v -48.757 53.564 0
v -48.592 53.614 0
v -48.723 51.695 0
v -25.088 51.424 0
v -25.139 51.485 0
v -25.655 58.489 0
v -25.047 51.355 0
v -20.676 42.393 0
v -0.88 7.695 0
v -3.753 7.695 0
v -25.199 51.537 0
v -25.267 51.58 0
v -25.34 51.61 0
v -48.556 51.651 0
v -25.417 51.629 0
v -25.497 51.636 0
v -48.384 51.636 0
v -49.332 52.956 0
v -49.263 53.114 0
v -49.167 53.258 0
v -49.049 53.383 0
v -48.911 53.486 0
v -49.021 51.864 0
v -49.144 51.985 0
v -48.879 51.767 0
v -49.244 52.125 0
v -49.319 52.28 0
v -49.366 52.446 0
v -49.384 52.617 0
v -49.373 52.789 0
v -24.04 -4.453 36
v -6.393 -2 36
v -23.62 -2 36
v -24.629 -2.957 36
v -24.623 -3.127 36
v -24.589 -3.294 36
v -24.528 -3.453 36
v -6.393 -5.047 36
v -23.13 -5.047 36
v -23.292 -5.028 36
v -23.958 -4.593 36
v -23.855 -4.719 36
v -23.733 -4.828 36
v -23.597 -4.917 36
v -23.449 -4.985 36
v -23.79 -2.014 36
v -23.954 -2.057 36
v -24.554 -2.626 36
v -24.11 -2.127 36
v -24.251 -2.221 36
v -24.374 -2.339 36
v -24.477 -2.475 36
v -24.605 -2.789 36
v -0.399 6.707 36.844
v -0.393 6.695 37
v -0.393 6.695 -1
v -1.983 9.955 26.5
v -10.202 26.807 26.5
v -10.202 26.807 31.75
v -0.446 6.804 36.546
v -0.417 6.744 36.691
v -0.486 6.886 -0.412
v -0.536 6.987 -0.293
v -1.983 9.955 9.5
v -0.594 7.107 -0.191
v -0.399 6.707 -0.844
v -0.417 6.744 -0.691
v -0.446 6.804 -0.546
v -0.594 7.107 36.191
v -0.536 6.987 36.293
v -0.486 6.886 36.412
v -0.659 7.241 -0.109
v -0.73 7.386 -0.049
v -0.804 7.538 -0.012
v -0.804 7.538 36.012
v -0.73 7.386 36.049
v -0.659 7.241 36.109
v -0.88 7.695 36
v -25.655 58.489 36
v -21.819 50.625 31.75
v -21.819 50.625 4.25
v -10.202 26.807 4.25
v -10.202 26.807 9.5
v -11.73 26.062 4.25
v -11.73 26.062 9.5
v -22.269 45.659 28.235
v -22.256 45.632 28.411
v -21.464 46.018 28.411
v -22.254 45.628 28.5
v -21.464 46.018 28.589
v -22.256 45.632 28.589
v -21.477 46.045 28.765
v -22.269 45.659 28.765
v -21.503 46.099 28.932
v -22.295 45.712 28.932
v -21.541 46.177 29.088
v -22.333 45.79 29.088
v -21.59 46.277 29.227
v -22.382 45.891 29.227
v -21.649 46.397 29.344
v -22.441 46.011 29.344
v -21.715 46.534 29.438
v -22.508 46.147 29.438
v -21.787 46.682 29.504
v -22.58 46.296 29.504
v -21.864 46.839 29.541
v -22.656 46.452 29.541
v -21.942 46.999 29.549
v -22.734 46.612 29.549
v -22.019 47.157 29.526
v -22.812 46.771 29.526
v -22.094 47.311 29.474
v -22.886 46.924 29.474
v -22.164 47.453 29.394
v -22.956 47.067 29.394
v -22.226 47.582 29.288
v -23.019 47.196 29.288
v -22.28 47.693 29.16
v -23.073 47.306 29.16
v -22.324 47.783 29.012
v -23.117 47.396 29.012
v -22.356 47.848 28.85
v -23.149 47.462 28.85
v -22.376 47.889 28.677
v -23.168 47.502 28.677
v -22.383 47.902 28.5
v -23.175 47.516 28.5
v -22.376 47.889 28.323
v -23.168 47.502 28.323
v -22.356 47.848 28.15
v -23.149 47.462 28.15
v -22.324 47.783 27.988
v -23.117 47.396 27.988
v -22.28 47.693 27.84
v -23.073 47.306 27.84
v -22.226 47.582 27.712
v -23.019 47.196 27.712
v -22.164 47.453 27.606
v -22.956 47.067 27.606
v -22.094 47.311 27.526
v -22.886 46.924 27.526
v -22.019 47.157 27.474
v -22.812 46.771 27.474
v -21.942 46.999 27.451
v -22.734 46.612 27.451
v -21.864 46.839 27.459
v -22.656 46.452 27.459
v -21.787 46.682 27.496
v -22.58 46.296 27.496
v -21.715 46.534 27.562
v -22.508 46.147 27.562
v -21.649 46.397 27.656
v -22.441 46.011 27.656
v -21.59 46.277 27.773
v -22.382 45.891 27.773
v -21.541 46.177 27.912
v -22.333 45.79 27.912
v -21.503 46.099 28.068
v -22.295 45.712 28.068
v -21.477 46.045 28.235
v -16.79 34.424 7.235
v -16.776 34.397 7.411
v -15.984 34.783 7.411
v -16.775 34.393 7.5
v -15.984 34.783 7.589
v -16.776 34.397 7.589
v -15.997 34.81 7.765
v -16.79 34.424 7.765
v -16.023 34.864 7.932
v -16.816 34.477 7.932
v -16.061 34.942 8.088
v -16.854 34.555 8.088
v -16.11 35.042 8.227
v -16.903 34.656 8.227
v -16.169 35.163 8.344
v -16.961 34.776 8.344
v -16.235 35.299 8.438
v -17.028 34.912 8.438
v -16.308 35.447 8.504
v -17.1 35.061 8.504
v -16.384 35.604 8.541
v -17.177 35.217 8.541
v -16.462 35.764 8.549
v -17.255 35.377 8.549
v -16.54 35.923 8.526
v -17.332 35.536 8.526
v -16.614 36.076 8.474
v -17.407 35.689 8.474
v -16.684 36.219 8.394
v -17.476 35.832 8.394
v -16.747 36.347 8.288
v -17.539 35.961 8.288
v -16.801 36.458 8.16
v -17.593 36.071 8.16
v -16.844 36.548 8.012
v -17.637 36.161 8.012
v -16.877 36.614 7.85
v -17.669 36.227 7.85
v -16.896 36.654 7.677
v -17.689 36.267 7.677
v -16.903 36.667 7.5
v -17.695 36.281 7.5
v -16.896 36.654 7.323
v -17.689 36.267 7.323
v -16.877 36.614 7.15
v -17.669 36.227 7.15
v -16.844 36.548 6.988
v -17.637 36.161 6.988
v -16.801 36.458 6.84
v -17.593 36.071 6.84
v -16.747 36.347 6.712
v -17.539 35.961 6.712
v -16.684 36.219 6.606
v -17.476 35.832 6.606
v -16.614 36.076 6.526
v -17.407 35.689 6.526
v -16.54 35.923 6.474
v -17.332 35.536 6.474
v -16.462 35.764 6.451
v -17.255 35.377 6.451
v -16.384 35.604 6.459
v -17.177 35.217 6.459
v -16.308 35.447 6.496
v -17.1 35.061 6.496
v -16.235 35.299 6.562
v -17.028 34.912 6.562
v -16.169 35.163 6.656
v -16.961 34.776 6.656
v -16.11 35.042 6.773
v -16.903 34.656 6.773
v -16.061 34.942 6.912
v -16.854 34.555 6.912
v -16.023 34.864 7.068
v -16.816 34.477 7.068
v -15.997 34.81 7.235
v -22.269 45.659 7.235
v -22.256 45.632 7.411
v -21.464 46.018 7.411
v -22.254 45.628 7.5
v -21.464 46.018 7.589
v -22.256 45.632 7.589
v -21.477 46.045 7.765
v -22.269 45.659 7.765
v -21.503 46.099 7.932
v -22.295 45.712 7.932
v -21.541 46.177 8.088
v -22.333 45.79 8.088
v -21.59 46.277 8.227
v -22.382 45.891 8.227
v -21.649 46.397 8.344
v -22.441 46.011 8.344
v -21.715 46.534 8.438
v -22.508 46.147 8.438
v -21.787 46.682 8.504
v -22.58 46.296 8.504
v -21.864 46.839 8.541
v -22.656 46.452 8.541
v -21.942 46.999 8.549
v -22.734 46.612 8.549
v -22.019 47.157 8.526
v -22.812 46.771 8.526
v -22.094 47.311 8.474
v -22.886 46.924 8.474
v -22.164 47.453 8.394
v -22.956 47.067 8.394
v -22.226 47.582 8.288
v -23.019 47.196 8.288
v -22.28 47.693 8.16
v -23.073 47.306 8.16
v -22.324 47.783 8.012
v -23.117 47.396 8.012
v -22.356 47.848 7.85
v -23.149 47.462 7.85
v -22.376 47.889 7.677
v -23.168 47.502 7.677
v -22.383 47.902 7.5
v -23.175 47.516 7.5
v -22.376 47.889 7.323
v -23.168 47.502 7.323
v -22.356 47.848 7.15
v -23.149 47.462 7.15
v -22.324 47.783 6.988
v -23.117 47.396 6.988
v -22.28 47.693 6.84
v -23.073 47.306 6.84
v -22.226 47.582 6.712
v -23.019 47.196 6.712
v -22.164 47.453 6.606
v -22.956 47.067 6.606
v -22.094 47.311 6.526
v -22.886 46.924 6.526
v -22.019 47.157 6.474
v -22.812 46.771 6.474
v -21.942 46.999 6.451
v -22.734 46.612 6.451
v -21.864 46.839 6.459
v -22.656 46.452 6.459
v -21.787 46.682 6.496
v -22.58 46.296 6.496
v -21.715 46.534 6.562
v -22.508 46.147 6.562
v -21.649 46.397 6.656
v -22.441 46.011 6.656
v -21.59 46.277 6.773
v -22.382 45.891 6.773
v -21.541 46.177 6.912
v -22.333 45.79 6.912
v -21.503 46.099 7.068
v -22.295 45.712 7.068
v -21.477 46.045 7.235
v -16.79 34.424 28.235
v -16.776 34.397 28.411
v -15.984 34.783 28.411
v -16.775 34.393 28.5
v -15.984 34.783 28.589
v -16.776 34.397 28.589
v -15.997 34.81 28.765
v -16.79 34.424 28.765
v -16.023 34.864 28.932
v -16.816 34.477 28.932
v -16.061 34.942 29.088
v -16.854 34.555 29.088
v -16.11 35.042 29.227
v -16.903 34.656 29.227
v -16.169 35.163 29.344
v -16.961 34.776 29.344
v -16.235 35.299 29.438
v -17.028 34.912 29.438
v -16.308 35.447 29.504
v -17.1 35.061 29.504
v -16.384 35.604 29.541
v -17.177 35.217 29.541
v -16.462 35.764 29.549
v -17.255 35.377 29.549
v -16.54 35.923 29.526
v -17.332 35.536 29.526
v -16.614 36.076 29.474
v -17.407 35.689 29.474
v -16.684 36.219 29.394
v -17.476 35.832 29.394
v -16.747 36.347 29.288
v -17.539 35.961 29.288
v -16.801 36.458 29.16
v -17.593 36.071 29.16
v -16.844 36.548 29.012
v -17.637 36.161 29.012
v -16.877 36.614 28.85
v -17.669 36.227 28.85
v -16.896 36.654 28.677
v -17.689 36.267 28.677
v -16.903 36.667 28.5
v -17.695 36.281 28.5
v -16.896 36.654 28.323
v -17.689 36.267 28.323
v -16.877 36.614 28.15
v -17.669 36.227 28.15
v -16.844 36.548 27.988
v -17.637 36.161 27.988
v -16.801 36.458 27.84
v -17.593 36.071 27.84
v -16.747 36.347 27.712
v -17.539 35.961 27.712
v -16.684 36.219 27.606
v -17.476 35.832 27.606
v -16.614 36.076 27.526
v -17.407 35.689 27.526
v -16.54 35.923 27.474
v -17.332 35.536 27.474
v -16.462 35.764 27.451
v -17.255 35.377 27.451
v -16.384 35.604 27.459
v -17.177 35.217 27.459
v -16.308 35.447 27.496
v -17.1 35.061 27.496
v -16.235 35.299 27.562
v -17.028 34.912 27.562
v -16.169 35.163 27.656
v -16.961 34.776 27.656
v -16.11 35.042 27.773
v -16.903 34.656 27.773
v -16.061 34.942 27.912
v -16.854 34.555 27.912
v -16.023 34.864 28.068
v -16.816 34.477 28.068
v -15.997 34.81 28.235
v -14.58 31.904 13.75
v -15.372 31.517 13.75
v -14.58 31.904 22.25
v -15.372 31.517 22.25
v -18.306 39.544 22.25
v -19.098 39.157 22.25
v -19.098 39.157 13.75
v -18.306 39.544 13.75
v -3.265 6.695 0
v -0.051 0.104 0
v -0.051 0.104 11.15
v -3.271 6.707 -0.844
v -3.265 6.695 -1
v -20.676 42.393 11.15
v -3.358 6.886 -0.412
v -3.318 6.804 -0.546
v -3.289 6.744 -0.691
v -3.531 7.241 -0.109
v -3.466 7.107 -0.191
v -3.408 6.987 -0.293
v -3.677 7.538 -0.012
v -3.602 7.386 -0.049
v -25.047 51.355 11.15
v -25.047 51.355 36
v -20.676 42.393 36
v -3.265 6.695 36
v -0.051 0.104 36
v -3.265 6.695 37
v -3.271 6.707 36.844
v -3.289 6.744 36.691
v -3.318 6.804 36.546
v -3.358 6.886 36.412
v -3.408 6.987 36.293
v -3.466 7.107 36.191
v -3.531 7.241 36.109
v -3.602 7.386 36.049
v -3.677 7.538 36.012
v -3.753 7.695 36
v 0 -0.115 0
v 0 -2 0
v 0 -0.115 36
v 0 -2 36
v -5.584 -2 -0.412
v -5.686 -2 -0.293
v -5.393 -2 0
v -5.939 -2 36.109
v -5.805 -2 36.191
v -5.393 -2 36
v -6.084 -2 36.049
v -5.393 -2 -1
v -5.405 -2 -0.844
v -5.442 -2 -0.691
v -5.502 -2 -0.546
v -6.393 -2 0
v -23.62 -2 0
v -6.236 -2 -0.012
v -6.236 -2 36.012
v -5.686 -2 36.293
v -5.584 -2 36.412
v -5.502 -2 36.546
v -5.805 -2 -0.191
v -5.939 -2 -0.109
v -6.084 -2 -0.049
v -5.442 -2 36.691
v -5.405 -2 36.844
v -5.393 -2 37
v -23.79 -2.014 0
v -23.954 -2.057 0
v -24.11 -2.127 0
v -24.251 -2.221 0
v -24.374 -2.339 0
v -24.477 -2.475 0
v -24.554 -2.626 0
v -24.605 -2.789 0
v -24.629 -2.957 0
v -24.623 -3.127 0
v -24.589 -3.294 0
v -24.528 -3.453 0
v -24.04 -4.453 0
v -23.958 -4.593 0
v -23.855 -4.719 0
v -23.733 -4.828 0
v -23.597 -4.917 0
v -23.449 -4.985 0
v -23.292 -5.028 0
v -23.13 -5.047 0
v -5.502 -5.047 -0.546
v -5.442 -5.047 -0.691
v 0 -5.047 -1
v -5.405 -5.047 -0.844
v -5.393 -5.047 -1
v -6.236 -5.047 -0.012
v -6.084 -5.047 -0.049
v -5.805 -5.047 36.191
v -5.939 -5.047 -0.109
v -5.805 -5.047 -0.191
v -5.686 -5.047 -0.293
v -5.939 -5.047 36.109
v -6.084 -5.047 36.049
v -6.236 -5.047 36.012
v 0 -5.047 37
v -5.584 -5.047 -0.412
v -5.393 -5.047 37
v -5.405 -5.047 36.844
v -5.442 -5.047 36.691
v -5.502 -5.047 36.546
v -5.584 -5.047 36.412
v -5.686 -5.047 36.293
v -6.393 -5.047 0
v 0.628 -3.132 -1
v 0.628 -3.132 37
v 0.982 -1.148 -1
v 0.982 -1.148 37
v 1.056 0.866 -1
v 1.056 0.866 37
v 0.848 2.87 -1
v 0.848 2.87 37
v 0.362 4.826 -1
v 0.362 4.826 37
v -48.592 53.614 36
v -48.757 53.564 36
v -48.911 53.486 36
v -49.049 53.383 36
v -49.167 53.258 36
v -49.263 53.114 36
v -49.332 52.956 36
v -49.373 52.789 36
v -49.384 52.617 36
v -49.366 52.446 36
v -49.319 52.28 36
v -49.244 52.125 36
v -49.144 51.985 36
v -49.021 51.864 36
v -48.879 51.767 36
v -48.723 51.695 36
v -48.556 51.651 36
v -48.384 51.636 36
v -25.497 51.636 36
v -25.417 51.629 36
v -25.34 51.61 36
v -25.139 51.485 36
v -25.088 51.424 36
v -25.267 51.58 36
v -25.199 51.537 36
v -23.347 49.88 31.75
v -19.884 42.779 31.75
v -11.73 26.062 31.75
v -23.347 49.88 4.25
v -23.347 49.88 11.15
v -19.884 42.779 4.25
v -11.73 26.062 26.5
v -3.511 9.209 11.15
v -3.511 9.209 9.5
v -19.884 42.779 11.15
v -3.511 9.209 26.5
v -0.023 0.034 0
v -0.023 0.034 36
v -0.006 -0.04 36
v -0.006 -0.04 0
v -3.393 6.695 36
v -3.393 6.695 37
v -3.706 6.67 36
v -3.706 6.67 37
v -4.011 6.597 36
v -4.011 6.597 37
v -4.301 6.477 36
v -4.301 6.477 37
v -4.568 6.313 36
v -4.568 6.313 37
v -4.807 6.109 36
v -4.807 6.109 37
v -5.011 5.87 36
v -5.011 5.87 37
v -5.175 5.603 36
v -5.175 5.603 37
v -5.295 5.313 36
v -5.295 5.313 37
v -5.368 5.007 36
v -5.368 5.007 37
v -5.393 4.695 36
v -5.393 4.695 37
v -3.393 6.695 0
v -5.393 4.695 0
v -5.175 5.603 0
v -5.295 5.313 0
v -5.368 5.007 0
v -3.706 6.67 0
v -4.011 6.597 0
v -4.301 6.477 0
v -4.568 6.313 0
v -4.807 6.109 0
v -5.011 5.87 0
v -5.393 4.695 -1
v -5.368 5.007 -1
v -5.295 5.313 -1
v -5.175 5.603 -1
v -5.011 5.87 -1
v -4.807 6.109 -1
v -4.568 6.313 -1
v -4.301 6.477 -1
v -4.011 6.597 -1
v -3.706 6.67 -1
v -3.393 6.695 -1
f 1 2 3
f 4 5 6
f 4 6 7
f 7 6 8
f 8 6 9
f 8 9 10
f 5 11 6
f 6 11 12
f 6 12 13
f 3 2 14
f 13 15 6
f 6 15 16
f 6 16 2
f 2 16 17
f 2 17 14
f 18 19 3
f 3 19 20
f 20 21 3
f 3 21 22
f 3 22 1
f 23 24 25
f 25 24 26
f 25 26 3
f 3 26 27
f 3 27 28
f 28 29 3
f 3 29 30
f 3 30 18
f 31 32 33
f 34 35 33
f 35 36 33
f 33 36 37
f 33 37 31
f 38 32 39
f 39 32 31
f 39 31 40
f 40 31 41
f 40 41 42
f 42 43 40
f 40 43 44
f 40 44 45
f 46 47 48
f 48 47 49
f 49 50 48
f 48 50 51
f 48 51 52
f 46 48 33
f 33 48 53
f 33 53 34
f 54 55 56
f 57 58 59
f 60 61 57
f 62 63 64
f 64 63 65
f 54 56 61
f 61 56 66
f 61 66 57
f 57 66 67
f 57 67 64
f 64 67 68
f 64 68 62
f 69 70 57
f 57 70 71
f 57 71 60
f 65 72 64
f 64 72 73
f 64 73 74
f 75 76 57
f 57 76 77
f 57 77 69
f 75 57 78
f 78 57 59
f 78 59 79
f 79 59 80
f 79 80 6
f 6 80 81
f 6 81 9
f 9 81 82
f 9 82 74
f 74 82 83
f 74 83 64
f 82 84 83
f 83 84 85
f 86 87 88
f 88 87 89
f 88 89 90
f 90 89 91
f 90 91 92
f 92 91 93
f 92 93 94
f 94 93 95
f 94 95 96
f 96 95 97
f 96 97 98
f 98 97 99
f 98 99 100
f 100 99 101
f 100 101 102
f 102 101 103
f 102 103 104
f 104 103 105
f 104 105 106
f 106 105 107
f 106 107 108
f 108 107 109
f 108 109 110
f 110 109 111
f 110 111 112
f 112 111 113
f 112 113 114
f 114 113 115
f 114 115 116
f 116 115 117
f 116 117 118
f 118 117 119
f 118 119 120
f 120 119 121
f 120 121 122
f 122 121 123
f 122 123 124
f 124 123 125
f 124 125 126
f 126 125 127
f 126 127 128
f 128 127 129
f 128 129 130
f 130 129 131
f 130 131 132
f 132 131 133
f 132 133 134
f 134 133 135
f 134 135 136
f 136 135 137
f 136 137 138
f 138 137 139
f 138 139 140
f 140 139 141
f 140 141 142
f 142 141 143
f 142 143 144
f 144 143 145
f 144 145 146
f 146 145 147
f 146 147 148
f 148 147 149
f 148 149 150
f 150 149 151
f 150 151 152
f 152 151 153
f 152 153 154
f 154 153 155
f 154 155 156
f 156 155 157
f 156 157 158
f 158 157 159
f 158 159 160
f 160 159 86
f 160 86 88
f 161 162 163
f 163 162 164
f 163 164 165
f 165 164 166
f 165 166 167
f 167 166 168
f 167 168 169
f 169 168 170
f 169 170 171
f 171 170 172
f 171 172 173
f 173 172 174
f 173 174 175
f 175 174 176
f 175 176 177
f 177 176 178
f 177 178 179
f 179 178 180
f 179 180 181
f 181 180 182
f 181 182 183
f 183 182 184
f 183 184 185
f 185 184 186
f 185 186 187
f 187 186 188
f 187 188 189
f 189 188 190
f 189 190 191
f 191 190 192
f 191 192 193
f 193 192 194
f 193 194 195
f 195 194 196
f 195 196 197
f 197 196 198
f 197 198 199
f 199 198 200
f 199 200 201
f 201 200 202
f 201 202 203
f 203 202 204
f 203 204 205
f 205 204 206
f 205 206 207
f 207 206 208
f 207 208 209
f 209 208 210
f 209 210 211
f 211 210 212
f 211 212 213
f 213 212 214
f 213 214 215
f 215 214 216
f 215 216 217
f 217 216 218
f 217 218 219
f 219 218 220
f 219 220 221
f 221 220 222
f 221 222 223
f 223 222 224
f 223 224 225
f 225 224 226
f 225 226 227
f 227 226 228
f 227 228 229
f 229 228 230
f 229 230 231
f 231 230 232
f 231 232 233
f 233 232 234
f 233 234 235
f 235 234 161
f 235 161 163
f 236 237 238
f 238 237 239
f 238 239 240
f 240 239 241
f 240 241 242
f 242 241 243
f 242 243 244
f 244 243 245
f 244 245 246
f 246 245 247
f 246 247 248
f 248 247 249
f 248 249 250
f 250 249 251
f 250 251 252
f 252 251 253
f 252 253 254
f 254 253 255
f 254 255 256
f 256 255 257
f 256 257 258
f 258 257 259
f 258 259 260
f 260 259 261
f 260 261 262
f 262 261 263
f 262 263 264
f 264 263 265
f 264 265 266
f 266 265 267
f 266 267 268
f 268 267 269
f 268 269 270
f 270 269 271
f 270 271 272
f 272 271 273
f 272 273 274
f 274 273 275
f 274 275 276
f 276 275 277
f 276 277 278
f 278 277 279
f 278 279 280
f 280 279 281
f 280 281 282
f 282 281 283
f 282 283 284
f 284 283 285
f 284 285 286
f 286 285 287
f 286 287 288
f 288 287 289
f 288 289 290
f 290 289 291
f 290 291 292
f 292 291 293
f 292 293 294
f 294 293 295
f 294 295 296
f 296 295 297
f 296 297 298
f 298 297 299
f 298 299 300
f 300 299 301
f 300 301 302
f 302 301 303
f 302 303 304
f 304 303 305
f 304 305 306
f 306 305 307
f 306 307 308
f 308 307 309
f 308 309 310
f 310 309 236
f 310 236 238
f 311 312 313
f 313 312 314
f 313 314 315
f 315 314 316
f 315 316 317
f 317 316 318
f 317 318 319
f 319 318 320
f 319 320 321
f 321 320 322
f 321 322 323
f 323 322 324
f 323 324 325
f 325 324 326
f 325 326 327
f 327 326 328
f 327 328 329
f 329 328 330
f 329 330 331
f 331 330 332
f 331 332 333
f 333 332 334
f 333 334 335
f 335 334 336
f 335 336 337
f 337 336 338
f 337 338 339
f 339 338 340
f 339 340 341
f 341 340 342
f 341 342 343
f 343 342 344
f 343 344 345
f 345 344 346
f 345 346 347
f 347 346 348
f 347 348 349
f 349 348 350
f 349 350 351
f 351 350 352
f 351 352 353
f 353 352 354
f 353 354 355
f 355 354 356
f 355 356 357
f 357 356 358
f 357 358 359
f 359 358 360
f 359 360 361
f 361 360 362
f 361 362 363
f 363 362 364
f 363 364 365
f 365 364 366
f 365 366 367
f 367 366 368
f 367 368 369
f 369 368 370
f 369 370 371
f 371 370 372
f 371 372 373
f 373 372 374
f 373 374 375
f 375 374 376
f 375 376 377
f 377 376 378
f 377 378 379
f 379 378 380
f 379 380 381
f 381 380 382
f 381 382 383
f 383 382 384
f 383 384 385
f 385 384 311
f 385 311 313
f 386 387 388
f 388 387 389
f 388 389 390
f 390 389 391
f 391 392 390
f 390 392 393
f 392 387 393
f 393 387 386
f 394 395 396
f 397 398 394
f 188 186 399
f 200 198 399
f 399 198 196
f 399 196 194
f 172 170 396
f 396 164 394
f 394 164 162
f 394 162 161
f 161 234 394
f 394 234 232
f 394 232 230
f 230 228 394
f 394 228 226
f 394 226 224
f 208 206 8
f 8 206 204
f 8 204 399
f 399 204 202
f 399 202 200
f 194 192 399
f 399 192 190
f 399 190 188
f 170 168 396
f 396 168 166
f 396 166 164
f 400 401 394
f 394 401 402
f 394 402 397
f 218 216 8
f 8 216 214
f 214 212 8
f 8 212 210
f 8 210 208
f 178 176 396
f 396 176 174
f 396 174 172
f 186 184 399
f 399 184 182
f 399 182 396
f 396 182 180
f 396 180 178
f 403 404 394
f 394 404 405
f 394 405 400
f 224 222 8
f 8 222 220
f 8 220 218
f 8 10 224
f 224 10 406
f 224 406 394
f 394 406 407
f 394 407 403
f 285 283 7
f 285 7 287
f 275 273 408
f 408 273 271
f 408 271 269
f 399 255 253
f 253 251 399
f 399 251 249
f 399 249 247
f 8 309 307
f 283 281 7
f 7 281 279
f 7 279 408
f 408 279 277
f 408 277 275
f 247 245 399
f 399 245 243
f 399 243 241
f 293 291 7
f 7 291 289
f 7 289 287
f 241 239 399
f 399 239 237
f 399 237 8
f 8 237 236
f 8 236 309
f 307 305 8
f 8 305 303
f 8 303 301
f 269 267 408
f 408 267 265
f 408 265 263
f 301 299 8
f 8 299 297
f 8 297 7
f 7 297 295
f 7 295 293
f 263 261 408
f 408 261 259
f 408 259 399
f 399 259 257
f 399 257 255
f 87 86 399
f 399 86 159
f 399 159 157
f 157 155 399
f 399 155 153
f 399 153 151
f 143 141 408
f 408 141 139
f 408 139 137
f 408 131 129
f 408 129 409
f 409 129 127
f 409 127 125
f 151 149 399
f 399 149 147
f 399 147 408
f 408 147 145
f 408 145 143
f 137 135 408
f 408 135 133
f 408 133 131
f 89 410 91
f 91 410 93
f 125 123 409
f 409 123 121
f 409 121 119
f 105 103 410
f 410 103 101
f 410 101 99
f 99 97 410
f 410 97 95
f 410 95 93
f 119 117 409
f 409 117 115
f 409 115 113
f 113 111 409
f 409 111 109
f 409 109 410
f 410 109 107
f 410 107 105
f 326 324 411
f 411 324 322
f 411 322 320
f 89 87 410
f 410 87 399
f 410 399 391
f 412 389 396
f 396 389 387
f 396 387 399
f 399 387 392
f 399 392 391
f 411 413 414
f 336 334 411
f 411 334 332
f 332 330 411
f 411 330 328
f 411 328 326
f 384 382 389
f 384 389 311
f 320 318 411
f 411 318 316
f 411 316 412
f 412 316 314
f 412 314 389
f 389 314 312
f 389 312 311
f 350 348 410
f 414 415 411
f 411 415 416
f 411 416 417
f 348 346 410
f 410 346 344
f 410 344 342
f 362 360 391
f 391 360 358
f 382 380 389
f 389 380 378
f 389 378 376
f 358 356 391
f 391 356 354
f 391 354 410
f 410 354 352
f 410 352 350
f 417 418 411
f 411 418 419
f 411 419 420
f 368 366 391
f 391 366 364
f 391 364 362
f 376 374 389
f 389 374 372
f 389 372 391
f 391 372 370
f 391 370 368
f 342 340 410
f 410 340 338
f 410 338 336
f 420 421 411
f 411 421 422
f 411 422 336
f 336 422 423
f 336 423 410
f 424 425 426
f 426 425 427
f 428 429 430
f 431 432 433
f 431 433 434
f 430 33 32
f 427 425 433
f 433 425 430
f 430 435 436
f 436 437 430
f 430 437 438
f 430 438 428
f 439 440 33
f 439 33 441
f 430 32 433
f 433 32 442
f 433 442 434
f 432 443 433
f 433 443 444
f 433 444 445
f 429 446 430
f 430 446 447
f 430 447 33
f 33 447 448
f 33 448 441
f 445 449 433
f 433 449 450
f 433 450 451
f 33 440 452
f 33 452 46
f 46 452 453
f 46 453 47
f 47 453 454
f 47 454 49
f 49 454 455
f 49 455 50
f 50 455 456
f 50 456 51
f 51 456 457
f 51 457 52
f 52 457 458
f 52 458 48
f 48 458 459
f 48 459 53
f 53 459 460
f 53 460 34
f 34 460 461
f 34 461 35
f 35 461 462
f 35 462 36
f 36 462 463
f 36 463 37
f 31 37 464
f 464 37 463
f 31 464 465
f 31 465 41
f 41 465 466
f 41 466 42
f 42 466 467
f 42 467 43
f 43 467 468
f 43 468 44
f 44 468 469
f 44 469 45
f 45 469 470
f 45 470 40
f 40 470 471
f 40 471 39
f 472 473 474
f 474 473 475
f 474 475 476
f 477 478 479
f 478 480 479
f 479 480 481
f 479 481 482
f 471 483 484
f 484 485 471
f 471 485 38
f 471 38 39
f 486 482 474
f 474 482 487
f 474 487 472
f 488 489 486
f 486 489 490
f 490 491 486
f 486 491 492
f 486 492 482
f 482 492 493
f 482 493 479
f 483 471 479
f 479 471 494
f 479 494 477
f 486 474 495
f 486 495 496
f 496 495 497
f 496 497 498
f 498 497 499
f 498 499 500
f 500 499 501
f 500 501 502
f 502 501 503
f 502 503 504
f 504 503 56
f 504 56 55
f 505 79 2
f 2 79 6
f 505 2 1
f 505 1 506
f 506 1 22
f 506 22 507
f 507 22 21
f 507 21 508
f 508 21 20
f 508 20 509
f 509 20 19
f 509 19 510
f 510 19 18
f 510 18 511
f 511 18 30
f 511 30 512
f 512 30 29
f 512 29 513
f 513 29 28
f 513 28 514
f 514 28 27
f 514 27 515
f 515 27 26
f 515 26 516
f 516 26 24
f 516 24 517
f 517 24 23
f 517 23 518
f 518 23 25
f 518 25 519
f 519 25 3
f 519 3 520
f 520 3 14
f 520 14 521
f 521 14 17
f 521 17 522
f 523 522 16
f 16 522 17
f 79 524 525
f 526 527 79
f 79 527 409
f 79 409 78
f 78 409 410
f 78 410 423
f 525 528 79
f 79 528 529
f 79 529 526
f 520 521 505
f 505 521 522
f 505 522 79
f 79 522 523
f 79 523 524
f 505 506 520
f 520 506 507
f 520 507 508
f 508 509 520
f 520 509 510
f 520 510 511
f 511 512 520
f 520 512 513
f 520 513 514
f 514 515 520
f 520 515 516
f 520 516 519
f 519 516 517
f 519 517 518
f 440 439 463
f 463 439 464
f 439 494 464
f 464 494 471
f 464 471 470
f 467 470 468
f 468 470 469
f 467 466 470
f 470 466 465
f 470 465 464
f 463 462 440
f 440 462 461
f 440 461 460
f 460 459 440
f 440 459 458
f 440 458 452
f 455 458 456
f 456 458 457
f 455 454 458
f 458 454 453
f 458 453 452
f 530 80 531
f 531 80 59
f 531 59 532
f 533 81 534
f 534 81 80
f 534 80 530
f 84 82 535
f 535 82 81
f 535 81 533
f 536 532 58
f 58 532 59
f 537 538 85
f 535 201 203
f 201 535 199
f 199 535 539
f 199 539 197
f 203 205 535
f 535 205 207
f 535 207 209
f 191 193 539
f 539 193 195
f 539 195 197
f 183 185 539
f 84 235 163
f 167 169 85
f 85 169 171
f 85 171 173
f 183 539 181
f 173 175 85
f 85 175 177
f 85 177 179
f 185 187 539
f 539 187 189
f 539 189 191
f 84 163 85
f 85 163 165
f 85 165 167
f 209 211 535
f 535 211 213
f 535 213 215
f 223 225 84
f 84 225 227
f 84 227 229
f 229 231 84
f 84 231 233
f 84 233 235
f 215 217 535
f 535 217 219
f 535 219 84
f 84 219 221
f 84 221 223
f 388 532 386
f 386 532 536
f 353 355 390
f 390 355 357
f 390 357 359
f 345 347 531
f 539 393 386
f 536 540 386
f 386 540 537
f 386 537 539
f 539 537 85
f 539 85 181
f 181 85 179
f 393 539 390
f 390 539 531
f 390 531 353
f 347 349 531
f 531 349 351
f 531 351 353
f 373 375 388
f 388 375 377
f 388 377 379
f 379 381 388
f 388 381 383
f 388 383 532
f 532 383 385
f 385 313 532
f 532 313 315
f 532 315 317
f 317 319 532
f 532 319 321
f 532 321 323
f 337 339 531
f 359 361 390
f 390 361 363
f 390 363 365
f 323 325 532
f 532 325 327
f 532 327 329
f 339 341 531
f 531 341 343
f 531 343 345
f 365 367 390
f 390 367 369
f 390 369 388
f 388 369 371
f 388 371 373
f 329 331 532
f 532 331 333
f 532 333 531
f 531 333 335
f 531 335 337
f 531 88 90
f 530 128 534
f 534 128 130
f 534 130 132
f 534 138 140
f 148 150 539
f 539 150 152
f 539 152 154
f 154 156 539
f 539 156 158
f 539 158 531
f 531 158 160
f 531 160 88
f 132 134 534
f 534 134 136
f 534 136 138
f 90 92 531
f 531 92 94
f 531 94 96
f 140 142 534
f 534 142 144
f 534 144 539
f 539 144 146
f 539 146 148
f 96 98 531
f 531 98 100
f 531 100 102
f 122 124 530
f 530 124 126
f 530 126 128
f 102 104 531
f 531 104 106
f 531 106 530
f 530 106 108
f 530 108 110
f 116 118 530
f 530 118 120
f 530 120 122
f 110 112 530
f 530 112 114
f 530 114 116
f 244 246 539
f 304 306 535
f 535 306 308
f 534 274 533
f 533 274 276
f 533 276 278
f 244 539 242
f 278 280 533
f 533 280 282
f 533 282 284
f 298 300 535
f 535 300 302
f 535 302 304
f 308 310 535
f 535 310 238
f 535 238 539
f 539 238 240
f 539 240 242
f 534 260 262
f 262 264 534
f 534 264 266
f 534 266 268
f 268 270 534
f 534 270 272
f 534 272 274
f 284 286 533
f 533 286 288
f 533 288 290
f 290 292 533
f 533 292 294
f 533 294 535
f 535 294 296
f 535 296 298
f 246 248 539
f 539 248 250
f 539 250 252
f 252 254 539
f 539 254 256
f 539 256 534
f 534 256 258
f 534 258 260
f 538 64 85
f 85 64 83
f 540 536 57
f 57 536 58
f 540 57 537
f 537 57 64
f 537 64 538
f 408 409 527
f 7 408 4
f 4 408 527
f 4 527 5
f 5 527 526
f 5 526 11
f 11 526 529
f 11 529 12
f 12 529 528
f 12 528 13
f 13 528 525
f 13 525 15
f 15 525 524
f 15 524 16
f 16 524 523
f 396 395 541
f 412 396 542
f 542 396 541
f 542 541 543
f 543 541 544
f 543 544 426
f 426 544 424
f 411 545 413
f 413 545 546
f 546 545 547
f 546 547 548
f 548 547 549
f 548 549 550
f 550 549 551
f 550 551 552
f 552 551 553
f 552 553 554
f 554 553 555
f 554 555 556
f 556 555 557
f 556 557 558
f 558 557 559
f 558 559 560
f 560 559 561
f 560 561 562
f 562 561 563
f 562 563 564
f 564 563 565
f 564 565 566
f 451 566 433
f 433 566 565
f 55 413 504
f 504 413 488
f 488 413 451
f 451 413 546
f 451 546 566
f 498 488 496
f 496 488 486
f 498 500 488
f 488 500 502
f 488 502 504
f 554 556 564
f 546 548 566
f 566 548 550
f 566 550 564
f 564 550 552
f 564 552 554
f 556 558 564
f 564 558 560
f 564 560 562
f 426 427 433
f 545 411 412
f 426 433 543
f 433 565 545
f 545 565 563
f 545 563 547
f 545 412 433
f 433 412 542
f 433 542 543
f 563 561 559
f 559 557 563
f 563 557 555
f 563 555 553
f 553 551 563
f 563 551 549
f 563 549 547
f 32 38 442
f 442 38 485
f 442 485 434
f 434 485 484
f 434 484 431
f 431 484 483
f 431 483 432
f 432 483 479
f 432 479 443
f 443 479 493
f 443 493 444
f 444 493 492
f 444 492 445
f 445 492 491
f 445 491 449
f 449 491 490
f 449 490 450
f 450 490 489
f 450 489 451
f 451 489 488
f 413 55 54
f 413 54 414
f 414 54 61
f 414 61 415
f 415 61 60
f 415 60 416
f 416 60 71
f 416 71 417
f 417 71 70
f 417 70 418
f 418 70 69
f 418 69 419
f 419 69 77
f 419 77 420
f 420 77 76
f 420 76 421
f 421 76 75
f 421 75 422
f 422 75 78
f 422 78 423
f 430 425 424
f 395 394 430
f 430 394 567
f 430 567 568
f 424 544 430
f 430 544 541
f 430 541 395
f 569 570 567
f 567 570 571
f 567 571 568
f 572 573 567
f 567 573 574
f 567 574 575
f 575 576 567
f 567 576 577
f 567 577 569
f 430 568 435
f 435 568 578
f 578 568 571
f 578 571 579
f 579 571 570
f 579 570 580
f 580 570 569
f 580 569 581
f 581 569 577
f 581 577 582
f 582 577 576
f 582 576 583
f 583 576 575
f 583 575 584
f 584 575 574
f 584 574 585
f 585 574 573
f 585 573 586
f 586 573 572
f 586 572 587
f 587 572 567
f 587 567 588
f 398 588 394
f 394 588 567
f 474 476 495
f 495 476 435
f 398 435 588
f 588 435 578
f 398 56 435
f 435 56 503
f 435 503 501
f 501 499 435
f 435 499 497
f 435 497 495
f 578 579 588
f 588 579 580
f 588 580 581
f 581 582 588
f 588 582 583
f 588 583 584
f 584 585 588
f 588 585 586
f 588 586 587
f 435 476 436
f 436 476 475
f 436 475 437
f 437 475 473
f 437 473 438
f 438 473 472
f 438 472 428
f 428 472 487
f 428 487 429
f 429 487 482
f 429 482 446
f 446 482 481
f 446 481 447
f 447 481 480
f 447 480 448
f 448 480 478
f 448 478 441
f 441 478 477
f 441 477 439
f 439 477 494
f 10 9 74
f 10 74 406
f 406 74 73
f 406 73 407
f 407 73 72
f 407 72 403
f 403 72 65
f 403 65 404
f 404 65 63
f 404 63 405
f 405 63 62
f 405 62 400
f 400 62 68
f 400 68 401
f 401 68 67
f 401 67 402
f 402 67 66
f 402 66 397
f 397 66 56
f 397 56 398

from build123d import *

# Parameters (mm, degrees)
BOSS_EXTRUDE1_DEPTH = 36
SKETCH4_R           = 1.05
SKETCH4_W           = 8.5
SKETCH4_H           = 8.5
CUT_EXTRUDE1_DEPTH  = 86.201472175
SKETCH4_3_W         = 27.5
SKETCH4_3_H         = 26.5
SKETCH4_3_W_2       = 25
SKETCH4_3_H_2       = 24
SKETCH4_3_R         = 1.05
SKETCH4_3_W_3       = 8.5
SKETCH4_3_H_3       = 8.5
CUT_EXTRUDE2_DEPTH  = 1.7
SKETCH5_W           = 17
SKETCH5_H           = 20
CUT_EXTRUDE3_DEPTH  = 1.7
FILLET1_R           = 0.5
BOSS_EXTRUDE2_DEPTH = 1
FILLET2_R           = 1
FILLET3_R           = 1


with BuildPart() as part:
    # Sketch2 → Boss-Extrude1 (new body)
    with BuildSketch(Plane.XY):
        with BuildLine():
            Line((0, 0), (-25.184422383, 51.63571796))
            Line((-25.184422383, 51.63571796), (-48.384422383, 51.63571796))
            ThreePointArc((-48.384422383, 51.63571796), (-49.378944278, 52.531189497), (-48.592334074, 53.613865561))
            Line((-48.592334074, 53.613865561), (-25.654772837, 58.48939471))
            Line((-25.654772837, 58.48939471), (-0.392745057, 6.694562109))
            ThreePointArc((-0.392745057, 6.694562109), (1.056036581, 0.865561175), (0, -5.047222168))
            Line((0, -5.047222168), (-23.13, -5.047222168))
            ThreePointArc((-23.13, -5.047222168), (-23.667026027, -4.875521503), (-24.040049398, -4.452754858))
            Line((-24.040049398, -4.452754858), (-24.527781987, -3.452754858))
            ThreePointArc((-24.527781987, -3.452754858), (-24.476528577, -2.474781543), (-23.62, -2))
            Line((-23.62, -2), (0, -2))
            Line((0, -2), (0, 0))
        make_face()
    extrude(amount=BOSS_EXTRUDE1_DEPTH)

    # Sketch4 → Cut-Extrude1 (cut, through all)
    with BuildSketch(Plane(origin=(2.320421937, 1.131745398, 0), x_dir=(0, 0, -1), z_dir=(0.898794046299168, 0.4383711467890754, 0))):
        with Locations(Location((-28.5, 51.816231926, 0), (0, 0, 90))):
            Circle(SKETCH4_R)
        with Locations(Location((-28.5, 39.316231926, 0), (0, 0, 90))):
            Circle(SKETCH4_R)
        with Locations(Location((-7.5, 51.816231926, 0), (0, 0, 90))):
            Circle(SKETCH4_R)
        with Locations(Location((-7.5, 39.316231926, 0), (0, 0, 90))):
            Circle(SKETCH4_R)
        with Locations((-18, 39.316231926)):
            Rectangle(SKETCH4_W, SKETCH4_H)
    extrude(amount=-CUT_EXTRUDE1_DEPTH, mode=Mode.SUBTRACT)

    # Sketch4<3> → Cut-Extrude2 (cut)
    # profile 1 of 2: a face of its own
    with BuildSketch(Plane(origin=(2.320421937, 1.131745398, 0), x_dir=(0, 0, -1), z_dir=(0.898794046299168, 0.4383711467890754, 0))):
        with Locations((-18, 41.816231926)):
            Rectangle(SKETCH4_3_W, SKETCH4_3_H)
        with Locations((-18, 41.816231926)):
            Rectangle(SKETCH4_3_W_2, SKETCH4_3_H_2, mode=Mode.SUBTRACT)
    # profile 2 of 2: a face of its own
    with BuildSketch(Plane(origin=(2.320421937, 1.131745398, 0), x_dir=(0, 0, -1), z_dir=(0.898794046299168, 0.4383711467890754, 0))):
        with Locations((-18, 41.816231926)):
            Rectangle(SKETCH4_3_W_2, SKETCH4_3_H_2)
        with Locations(Location((-7.5, 39.316231926, 0), (0, 0, 90))):
            Circle(SKETCH4_3_R, mode=Mode.SUBTRACT)
        with Locations(Location((-7.5, 51.816231926, 0), (0, 0, 90))):
            Circle(SKETCH4_3_R, mode=Mode.SUBTRACT)
        with Locations(Location((-28.5, 39.316231926, 0), (0, 0, 90))):
            Circle(SKETCH4_3_R, mode=Mode.SUBTRACT)
        with Locations(Location((-28.5, 51.816231926, 0), (0, 0, 90))):
            Circle(SKETCH4_3_R, mode=Mode.SUBTRACT)
        with Locations((-18, 39.316231926)):
            Rectangle(SKETCH4_3_W_3, SKETCH4_3_H_3, mode=Mode.SUBTRACT)
    extrude(amount=-CUT_EXTRUDE2_DEPTH, mode=Mode.SUBTRACT)

    # Sketch5 → Cut-Extrude3 (cut)
    with BuildSketch(Plane(origin=(2.320421937, 1.131745398, 0), x_dir=(0, 0, -1), z_dir=(0.898794046299168, 0.4383711467890754, 0))):
        with Locations((-18, 19.816231926)):
            Rectangle(SKETCH5_W, SKETCH5_H)
    extrude(amount=-CUT_EXTRUDE3_DEPTH, mode=Mode.SUBTRACT)

    # Fillet1
    fillet1_edges = [part.edges().sort_by_distance(p)[0] for p in [
        (0, 0, 18),
        (-25.184422383, 51.63571796, 18),
    ]]
    fillet(fillet1_edges, radius=FILLET1_R)

    # Sketch6 → Boss-Extrude2 (add)
    with BuildSketch(Plane.XY.offset(36)):
        with BuildLine():
            Line((-0.392745057, 6.694562109), (-3.392745057, 6.694562109))
            ThreePointArc((-3.392745057, 6.694562109), (-4.80695862, 6.108775671), (-5.392745057, 4.694562109))
            Line((-5.392745057, 4.694562109), (-5.392745057, -5.047222168))
            Line((-5.392745057, -5.047222168), (0, -5.047222168))
            ThreePointArc((0, -5.047222168), (1.056036581, 0.865561175), (-0.392745057, 6.694562109))
        make_face()
    boss_extrude2 = extrude(amount=BOSS_EXTRUDE2_DEPTH)

    # Fillet2
    # the kernel refuses this fillet: 1 mm, written as the material it adds along each edge
    with BuildSketch(Plane(origin=(-5.392745057, -2, 36), x_dir=(-1, 0, 0), z_dir=(0, -1, 0))) as fillet2_piece_1:
        with BuildLine():
            CenterArc((FILLET2_R, -FILLET2_R), FILLET2_R, 90, 90)
            Line((0, -FILLET2_R), (0, 0))
            Line((0, 0), (FILLET2_R, 0))
        make_face()
    extrude(amount=3.047222168)
    with BuildSketch(Plane(origin=(2.107254943, 6.694562109, 36), x_dir=(0, 0, 1), z_dir=(-1, 0, 0))) as fillet2_piece_2_section:
        with BuildLine():
            CenterArc((FILLET2_R, FILLET2_R), FILLET2_R, 180, 90)
            Line((0, FILLET2_R), (0, 0))
            Line((0, 0), (FILLET2_R, 0))
        make_face()
    fillet2_piece_2 = extrude(amount=7.872411049, mode=Mode.PRIVATE)
    fillet2_piece_2 = split(fillet2_piece_2, bisect_by=Plane(origin=(-0.632231225, 7.185581517, 36.086380113), z_dir=(-0.8987940462991679, -0.4383711467890754, 0)), keep=Keep.TOP, mode=Mode.PRIVATE)
    fillet2_piece_2 = split(fillet2_piece_2, bisect_by=Plane(origin=(-2.952653161, 6.053836119, 36.086380113), z_dir=(0.898794046299168, 0.43837114678907535, 0)), keep=Keep.TOP, mode=Mode.PRIVATE)
    add(fillet2_piece_2)

    # Mirror3: Boss-Extrude2 across plane
    add(boss_extrude2.mirror(Plane(origin=(0, 0, 18), x_dir=(1, 0, 0), z_dir=(0, 0, -1))))

    # Fillet3
    # the kernel refuses this fillet: 1 mm, written as the material it adds along each edge
    with BuildSketch(Plane(origin=(-5.392745057, -2, 0), x_dir=(-1, 0, 0), z_dir=(0, -1, 0))) as fillet3_piece_1:
        with BuildLine():
            CenterArc((FILLET3_R, FILLET3_R), FILLET3_R, 180, 90)
            Line((0, FILLET3_R), (0, 0))
            Line((0, 0), (FILLET3_R, 0))
        make_face()
    extrude(amount=3.047222168)
    with BuildSketch(Plane(origin=(2.107254943, 6.694562109, 0), x_dir=(0, 1, 0), z_dir=(-1, 0, 0))) as fillet3_piece_2_section:
        with BuildLine():
            CenterArc((FILLET3_R, FILLET3_R), FILLET3_R, 180, 90)
            Line((0, FILLET3_R), (0, 0))
            Line((0, 0), (FILLET3_R, 0))
        make_face()
    fillet3_piece_2 = extrude(amount=7.872411049, mode=Mode.PRIVATE)
    fillet3_piece_2 = split(fillet3_piece_2, bisect_by=Plane(origin=(-2.952649492, 6.053828597, -0.086392955), z_dir=(0.8987940462991654, 0.43837114678908073, 0)), keep=Keep.TOP, mode=Mode.PRIVATE)
    fillet3_piece_2 = split(fillet3_piece_2, bisect_by=Plane(origin=(-0.632227556, 7.185573995, -0.086392955), z_dir=(-0.8987940462991654, -0.43837114678908073, 0)), keep=Keep.TOP, mode=Mode.PRIVATE)
    add(fillet3_piece_2)


solid = part.part
